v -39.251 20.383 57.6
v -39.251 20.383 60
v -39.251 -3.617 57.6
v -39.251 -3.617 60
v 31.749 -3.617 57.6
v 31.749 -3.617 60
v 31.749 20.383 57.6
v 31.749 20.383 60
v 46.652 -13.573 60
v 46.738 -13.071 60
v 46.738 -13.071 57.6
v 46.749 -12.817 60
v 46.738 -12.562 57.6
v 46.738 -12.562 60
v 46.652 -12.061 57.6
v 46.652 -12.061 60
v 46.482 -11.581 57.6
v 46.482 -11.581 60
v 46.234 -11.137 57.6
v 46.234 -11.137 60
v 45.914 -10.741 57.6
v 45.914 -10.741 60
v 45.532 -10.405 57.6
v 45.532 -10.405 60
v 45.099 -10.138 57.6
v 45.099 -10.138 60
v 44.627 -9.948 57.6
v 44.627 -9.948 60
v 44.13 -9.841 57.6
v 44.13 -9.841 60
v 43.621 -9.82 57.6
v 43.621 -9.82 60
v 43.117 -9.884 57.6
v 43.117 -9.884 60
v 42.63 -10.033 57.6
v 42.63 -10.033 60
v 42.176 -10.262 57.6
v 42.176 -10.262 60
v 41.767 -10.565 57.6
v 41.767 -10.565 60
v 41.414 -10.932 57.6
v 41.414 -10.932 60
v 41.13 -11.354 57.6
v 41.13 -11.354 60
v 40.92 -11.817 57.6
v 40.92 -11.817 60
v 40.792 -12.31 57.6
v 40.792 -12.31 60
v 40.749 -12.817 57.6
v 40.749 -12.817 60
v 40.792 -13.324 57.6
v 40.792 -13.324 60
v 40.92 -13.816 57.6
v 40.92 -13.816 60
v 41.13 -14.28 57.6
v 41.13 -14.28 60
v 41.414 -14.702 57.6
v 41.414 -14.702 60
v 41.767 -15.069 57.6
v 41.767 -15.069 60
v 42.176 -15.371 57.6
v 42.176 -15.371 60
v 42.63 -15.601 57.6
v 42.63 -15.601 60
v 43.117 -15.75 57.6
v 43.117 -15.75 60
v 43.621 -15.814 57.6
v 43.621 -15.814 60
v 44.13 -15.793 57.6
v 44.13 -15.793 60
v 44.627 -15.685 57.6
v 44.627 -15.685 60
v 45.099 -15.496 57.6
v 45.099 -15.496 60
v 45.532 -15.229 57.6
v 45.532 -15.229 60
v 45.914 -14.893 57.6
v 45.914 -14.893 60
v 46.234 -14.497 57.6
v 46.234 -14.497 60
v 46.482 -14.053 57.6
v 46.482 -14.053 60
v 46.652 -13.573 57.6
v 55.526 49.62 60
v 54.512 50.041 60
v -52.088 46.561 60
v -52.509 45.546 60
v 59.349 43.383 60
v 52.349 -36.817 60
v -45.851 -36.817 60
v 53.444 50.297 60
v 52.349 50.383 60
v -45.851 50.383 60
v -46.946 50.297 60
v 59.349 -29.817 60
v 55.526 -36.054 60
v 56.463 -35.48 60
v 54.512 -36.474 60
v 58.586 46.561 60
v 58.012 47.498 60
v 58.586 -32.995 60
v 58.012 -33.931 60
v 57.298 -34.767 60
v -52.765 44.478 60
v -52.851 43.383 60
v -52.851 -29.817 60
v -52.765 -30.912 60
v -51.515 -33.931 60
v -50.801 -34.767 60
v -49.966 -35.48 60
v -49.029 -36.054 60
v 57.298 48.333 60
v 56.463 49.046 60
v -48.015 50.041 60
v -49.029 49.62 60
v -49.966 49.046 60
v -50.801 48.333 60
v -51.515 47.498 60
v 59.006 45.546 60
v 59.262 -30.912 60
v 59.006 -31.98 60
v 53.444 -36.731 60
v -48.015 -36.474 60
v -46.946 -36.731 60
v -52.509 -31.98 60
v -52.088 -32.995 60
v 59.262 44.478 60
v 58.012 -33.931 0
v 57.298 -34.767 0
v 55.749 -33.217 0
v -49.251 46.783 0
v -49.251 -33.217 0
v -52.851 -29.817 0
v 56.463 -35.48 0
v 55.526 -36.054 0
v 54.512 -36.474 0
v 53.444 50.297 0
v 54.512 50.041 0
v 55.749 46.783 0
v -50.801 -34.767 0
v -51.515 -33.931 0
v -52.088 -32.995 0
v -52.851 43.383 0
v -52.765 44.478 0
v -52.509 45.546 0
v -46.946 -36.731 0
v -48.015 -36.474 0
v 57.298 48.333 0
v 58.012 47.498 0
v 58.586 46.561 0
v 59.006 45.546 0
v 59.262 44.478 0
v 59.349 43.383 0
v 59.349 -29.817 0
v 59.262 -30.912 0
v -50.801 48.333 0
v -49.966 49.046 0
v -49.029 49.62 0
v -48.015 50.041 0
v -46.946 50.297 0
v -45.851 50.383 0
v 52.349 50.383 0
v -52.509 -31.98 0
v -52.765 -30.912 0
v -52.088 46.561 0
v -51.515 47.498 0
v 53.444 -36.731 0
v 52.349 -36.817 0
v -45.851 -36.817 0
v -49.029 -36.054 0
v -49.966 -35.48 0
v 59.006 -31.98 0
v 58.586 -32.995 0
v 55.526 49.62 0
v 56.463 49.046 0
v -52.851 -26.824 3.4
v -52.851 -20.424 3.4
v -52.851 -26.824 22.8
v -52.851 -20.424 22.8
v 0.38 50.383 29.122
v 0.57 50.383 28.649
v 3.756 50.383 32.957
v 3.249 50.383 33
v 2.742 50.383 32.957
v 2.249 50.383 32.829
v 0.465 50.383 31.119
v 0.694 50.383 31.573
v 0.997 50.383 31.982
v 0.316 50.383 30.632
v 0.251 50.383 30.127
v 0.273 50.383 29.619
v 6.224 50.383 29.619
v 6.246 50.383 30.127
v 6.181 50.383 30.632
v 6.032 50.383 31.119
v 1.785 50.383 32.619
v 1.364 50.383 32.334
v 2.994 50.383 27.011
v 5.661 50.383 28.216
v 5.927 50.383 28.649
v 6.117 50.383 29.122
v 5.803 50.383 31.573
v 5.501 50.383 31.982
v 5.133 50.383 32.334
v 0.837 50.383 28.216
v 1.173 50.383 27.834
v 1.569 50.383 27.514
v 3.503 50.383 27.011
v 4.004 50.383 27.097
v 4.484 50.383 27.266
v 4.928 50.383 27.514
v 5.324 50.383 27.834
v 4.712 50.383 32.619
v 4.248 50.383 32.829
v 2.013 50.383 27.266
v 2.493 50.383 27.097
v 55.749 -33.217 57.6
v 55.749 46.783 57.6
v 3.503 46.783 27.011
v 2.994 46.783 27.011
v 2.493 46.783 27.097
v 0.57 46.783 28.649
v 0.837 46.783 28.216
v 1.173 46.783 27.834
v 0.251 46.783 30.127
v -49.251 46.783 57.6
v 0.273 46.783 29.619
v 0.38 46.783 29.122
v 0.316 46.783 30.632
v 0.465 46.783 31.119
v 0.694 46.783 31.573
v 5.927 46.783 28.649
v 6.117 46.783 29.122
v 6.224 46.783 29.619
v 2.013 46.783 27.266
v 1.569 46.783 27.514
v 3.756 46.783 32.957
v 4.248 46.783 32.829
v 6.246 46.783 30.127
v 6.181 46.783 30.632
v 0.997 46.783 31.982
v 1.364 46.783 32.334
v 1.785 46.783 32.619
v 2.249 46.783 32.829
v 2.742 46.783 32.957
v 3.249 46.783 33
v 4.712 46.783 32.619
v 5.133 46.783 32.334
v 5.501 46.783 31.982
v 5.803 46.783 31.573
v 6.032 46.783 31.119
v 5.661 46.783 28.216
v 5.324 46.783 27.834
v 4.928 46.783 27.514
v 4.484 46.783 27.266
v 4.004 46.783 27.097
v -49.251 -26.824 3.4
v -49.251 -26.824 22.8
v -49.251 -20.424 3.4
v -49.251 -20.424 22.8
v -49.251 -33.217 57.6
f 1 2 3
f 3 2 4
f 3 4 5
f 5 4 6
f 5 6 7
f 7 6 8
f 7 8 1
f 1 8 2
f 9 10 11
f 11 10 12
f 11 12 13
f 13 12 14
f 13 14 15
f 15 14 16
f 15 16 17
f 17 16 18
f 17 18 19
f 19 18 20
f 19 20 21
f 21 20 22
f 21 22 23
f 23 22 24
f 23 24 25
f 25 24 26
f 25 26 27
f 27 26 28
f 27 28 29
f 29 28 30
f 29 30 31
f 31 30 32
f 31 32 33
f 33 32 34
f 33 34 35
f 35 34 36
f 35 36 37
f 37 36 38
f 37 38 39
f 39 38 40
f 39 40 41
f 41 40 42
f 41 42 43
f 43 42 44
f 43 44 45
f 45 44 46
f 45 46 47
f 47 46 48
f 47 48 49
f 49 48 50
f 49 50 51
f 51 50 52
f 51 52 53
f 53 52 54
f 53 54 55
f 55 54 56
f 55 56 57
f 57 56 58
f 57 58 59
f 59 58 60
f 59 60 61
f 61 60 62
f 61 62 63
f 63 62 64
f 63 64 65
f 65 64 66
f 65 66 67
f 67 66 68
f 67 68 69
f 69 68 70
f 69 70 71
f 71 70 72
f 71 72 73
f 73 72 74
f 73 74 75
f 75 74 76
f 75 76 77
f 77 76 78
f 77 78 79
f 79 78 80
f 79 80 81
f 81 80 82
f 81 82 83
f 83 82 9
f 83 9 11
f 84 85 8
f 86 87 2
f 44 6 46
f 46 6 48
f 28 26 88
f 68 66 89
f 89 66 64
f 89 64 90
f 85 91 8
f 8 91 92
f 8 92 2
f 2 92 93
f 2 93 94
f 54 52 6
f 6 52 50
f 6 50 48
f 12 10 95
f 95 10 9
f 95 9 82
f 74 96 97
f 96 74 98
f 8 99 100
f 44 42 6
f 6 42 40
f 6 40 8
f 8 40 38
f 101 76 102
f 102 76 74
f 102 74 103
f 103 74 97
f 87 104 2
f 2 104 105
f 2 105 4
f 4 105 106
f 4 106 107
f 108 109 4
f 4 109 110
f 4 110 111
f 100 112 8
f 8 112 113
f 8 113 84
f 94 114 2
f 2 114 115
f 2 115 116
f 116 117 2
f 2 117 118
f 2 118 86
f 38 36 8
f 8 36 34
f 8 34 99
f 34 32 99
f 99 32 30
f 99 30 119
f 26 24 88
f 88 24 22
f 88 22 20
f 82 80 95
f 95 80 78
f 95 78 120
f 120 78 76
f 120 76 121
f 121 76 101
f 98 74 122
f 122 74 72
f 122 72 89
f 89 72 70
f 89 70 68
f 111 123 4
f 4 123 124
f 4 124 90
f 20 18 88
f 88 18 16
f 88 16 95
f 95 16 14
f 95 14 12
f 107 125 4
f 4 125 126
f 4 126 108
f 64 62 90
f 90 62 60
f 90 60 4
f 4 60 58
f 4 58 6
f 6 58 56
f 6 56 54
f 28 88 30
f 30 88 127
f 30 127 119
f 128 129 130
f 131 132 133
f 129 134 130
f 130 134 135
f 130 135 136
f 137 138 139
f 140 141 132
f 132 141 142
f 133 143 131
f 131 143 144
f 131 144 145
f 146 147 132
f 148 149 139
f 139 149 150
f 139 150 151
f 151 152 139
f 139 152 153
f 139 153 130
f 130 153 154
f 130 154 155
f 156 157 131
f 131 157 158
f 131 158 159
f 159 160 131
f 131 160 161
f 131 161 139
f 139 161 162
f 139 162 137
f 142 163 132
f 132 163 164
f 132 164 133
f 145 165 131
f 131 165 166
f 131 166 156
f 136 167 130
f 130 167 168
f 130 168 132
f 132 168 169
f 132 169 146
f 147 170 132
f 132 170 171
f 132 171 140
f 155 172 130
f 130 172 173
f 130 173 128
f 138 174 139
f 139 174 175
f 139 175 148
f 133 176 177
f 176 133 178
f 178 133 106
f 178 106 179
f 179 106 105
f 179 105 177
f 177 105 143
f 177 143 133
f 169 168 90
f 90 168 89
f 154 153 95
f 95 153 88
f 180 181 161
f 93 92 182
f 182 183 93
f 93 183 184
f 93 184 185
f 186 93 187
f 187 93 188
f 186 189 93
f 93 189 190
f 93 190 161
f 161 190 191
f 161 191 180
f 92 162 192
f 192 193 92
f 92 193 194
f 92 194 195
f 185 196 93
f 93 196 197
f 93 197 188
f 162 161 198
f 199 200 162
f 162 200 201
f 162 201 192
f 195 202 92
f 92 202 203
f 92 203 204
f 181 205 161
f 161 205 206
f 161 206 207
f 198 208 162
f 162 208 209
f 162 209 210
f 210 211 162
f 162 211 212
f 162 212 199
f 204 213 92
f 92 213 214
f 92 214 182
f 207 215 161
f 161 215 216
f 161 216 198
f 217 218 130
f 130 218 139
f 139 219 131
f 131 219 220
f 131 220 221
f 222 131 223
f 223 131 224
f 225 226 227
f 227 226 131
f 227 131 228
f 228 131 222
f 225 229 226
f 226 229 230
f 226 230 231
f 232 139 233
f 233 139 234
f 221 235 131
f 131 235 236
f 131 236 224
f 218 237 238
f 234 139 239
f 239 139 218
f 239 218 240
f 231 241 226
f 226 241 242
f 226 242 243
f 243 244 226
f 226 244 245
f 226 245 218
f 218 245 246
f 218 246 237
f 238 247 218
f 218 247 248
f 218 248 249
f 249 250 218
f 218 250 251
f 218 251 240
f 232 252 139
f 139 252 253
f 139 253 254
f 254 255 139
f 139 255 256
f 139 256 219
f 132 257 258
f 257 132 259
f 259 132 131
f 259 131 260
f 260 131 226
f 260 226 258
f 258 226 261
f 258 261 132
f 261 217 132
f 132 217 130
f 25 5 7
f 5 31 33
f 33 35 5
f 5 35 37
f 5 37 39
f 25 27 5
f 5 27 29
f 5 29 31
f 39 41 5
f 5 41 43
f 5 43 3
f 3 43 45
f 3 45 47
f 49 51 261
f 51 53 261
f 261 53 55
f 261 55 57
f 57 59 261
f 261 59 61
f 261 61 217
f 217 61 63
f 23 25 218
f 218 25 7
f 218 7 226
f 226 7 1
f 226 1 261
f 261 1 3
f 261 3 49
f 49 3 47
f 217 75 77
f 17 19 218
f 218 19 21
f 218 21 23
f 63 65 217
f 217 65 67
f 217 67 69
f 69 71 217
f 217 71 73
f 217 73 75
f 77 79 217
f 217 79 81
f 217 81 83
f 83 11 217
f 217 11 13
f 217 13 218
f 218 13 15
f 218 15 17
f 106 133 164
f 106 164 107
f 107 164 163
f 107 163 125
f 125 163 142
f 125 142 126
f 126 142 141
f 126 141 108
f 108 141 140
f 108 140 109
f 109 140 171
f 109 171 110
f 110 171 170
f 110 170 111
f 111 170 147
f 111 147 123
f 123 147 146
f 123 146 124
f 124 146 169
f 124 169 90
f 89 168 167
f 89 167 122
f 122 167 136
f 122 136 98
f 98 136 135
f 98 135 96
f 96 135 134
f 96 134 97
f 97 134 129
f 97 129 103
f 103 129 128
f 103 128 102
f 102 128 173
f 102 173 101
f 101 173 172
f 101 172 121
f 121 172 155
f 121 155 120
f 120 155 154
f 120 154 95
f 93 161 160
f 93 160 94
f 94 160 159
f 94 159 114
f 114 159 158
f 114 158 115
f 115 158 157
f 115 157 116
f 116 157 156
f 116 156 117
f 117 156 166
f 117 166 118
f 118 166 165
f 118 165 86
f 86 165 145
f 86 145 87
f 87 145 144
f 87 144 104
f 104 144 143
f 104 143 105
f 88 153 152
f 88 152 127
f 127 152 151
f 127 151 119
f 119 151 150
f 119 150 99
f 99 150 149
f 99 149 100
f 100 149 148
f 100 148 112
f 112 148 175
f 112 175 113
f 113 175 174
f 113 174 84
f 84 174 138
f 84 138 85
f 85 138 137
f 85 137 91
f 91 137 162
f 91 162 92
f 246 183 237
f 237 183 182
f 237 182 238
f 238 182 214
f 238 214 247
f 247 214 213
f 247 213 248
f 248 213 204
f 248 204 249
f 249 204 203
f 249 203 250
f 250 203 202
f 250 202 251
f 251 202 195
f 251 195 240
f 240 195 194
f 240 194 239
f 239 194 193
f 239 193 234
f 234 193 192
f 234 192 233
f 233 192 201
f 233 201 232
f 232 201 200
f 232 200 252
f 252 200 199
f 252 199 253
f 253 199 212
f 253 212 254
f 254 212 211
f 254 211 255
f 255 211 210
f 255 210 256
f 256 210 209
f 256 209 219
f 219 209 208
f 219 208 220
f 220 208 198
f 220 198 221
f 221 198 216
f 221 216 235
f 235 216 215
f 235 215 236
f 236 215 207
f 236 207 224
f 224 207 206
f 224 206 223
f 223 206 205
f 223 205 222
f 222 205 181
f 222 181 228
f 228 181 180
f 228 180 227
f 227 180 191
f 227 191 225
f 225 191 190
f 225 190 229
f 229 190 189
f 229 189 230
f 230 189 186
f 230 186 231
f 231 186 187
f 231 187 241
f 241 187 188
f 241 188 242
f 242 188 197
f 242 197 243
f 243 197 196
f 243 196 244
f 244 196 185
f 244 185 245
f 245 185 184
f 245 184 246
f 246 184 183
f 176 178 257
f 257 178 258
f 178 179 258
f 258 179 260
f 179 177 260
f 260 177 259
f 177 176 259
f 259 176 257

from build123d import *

# Parameters (mm, degrees)
SKETCH2_W           = 112.2
SKETCH2_H           = 87.2
SKETCH2_R           = 3
SKETCH2_W_2         = 71
SKETCH2_H_2         = 24
BOSS_EXTRUDE2_DEPTH = 60
SKETCH6_W           = 105
SKETCH6_H           = 80
CUT_EXTRUDE4_DEPTH  = 57.6
FILLET2_R           = 7
CUT_EXTRUDE5_REACH  = 89.2
SKETCH7_R           = 3
CUT_EXTRUDE6_REACH  = 114.2
SKETCH8_W           = 19.4
SKETCH8_H           = 6.4


with BuildPart() as part:
    # Sketch2 → Boss-Extrude2 (new body)
    with BuildSketch(Plane.XY):
        with Locations((3.248565438, 6.783112604)):
            Rectangle(SKETCH2_W, SKETCH2_H)
        with Locations((43.748565438, -12.816887396)):
            Circle(SKETCH2_R, mode=Mode.SUBTRACT)
        with Locations((-3.751434562, 8.383112604)):
            Rectangle(SKETCH2_W_2, SKETCH2_H_2, mode=Mode.SUBTRACT)
    extrude(amount=BOSS_EXTRUDE2_DEPTH)

    # Sketch6 → Cut-Extrude4 (cut)
    with BuildSketch(Plane(origin=(0, 0, 0), x_dir=(-1, 0, 0), z_dir=(0, 0, -1))):
        with Locations((-3.248565438, 6.783112604)):
            Rectangle(SKETCH6_W, SKETCH6_H)
    extrude(amount=-CUT_EXTRUDE4_DEPTH, mode=Mode.SUBTRACT)

    # Fillet2
    fillet2_edges = [part.edges().sort_by_distance(p)[0] for p in [
        (-52.851434562, 50.383112604, 30),
        (59.348565438, 50.383112604, 30),
        (59.348565438, -36.816887396, 30),
        (-52.851434562, -36.816887396, 30),
    ]]
    fillet(fillet2_edges, radius=FILLET2_R)

    # Sketch7 → Cut-Extrude5 (cut, up to next)
    with BuildSketch(Plane(origin=(0, 50.383112604, 0), x_dir=(1, 0, 0), z_dir=(0, 1, 0)), mode=Mode.PRIVATE) as cut_extrude5_sk1:
        with Locations((3.248565438, -30)):
            Circle(SKETCH7_R)
    cut_extrude5_tool1 = extrude(cut_extrude5_sk1.sketch, amount=-CUT_EXTRUDE5_REACH, mode=Mode.PRIVATE) & part.part
    add(cut_extrude5_tool1.solids().sort_by_distance((3.248565, 50.383113, 30))[0], mode=Mode.SUBTRACT)

    # Sketch8 → Cut-Extrude6 (cut, up to next)
    with BuildSketch(Plane.ZY.offset(52.851434562), mode=Mode.PRIVATE) as cut_extrude6_sk1:
        with Locations((13.1, -23.624199851)):
            Rectangle(SKETCH8_W, SKETCH8_H)
    cut_extrude6_tool1 = extrude(cut_extrude6_sk1.sketch, amount=-CUT_EXTRUDE6_REACH, mode=Mode.PRIVATE) & part.part
    add(cut_extrude6_tool1.solids().sort_by_distance((-52.851435, -23.6242, 13.1))[0], mode=Mode.SUBTRACT)


solid = part.part
